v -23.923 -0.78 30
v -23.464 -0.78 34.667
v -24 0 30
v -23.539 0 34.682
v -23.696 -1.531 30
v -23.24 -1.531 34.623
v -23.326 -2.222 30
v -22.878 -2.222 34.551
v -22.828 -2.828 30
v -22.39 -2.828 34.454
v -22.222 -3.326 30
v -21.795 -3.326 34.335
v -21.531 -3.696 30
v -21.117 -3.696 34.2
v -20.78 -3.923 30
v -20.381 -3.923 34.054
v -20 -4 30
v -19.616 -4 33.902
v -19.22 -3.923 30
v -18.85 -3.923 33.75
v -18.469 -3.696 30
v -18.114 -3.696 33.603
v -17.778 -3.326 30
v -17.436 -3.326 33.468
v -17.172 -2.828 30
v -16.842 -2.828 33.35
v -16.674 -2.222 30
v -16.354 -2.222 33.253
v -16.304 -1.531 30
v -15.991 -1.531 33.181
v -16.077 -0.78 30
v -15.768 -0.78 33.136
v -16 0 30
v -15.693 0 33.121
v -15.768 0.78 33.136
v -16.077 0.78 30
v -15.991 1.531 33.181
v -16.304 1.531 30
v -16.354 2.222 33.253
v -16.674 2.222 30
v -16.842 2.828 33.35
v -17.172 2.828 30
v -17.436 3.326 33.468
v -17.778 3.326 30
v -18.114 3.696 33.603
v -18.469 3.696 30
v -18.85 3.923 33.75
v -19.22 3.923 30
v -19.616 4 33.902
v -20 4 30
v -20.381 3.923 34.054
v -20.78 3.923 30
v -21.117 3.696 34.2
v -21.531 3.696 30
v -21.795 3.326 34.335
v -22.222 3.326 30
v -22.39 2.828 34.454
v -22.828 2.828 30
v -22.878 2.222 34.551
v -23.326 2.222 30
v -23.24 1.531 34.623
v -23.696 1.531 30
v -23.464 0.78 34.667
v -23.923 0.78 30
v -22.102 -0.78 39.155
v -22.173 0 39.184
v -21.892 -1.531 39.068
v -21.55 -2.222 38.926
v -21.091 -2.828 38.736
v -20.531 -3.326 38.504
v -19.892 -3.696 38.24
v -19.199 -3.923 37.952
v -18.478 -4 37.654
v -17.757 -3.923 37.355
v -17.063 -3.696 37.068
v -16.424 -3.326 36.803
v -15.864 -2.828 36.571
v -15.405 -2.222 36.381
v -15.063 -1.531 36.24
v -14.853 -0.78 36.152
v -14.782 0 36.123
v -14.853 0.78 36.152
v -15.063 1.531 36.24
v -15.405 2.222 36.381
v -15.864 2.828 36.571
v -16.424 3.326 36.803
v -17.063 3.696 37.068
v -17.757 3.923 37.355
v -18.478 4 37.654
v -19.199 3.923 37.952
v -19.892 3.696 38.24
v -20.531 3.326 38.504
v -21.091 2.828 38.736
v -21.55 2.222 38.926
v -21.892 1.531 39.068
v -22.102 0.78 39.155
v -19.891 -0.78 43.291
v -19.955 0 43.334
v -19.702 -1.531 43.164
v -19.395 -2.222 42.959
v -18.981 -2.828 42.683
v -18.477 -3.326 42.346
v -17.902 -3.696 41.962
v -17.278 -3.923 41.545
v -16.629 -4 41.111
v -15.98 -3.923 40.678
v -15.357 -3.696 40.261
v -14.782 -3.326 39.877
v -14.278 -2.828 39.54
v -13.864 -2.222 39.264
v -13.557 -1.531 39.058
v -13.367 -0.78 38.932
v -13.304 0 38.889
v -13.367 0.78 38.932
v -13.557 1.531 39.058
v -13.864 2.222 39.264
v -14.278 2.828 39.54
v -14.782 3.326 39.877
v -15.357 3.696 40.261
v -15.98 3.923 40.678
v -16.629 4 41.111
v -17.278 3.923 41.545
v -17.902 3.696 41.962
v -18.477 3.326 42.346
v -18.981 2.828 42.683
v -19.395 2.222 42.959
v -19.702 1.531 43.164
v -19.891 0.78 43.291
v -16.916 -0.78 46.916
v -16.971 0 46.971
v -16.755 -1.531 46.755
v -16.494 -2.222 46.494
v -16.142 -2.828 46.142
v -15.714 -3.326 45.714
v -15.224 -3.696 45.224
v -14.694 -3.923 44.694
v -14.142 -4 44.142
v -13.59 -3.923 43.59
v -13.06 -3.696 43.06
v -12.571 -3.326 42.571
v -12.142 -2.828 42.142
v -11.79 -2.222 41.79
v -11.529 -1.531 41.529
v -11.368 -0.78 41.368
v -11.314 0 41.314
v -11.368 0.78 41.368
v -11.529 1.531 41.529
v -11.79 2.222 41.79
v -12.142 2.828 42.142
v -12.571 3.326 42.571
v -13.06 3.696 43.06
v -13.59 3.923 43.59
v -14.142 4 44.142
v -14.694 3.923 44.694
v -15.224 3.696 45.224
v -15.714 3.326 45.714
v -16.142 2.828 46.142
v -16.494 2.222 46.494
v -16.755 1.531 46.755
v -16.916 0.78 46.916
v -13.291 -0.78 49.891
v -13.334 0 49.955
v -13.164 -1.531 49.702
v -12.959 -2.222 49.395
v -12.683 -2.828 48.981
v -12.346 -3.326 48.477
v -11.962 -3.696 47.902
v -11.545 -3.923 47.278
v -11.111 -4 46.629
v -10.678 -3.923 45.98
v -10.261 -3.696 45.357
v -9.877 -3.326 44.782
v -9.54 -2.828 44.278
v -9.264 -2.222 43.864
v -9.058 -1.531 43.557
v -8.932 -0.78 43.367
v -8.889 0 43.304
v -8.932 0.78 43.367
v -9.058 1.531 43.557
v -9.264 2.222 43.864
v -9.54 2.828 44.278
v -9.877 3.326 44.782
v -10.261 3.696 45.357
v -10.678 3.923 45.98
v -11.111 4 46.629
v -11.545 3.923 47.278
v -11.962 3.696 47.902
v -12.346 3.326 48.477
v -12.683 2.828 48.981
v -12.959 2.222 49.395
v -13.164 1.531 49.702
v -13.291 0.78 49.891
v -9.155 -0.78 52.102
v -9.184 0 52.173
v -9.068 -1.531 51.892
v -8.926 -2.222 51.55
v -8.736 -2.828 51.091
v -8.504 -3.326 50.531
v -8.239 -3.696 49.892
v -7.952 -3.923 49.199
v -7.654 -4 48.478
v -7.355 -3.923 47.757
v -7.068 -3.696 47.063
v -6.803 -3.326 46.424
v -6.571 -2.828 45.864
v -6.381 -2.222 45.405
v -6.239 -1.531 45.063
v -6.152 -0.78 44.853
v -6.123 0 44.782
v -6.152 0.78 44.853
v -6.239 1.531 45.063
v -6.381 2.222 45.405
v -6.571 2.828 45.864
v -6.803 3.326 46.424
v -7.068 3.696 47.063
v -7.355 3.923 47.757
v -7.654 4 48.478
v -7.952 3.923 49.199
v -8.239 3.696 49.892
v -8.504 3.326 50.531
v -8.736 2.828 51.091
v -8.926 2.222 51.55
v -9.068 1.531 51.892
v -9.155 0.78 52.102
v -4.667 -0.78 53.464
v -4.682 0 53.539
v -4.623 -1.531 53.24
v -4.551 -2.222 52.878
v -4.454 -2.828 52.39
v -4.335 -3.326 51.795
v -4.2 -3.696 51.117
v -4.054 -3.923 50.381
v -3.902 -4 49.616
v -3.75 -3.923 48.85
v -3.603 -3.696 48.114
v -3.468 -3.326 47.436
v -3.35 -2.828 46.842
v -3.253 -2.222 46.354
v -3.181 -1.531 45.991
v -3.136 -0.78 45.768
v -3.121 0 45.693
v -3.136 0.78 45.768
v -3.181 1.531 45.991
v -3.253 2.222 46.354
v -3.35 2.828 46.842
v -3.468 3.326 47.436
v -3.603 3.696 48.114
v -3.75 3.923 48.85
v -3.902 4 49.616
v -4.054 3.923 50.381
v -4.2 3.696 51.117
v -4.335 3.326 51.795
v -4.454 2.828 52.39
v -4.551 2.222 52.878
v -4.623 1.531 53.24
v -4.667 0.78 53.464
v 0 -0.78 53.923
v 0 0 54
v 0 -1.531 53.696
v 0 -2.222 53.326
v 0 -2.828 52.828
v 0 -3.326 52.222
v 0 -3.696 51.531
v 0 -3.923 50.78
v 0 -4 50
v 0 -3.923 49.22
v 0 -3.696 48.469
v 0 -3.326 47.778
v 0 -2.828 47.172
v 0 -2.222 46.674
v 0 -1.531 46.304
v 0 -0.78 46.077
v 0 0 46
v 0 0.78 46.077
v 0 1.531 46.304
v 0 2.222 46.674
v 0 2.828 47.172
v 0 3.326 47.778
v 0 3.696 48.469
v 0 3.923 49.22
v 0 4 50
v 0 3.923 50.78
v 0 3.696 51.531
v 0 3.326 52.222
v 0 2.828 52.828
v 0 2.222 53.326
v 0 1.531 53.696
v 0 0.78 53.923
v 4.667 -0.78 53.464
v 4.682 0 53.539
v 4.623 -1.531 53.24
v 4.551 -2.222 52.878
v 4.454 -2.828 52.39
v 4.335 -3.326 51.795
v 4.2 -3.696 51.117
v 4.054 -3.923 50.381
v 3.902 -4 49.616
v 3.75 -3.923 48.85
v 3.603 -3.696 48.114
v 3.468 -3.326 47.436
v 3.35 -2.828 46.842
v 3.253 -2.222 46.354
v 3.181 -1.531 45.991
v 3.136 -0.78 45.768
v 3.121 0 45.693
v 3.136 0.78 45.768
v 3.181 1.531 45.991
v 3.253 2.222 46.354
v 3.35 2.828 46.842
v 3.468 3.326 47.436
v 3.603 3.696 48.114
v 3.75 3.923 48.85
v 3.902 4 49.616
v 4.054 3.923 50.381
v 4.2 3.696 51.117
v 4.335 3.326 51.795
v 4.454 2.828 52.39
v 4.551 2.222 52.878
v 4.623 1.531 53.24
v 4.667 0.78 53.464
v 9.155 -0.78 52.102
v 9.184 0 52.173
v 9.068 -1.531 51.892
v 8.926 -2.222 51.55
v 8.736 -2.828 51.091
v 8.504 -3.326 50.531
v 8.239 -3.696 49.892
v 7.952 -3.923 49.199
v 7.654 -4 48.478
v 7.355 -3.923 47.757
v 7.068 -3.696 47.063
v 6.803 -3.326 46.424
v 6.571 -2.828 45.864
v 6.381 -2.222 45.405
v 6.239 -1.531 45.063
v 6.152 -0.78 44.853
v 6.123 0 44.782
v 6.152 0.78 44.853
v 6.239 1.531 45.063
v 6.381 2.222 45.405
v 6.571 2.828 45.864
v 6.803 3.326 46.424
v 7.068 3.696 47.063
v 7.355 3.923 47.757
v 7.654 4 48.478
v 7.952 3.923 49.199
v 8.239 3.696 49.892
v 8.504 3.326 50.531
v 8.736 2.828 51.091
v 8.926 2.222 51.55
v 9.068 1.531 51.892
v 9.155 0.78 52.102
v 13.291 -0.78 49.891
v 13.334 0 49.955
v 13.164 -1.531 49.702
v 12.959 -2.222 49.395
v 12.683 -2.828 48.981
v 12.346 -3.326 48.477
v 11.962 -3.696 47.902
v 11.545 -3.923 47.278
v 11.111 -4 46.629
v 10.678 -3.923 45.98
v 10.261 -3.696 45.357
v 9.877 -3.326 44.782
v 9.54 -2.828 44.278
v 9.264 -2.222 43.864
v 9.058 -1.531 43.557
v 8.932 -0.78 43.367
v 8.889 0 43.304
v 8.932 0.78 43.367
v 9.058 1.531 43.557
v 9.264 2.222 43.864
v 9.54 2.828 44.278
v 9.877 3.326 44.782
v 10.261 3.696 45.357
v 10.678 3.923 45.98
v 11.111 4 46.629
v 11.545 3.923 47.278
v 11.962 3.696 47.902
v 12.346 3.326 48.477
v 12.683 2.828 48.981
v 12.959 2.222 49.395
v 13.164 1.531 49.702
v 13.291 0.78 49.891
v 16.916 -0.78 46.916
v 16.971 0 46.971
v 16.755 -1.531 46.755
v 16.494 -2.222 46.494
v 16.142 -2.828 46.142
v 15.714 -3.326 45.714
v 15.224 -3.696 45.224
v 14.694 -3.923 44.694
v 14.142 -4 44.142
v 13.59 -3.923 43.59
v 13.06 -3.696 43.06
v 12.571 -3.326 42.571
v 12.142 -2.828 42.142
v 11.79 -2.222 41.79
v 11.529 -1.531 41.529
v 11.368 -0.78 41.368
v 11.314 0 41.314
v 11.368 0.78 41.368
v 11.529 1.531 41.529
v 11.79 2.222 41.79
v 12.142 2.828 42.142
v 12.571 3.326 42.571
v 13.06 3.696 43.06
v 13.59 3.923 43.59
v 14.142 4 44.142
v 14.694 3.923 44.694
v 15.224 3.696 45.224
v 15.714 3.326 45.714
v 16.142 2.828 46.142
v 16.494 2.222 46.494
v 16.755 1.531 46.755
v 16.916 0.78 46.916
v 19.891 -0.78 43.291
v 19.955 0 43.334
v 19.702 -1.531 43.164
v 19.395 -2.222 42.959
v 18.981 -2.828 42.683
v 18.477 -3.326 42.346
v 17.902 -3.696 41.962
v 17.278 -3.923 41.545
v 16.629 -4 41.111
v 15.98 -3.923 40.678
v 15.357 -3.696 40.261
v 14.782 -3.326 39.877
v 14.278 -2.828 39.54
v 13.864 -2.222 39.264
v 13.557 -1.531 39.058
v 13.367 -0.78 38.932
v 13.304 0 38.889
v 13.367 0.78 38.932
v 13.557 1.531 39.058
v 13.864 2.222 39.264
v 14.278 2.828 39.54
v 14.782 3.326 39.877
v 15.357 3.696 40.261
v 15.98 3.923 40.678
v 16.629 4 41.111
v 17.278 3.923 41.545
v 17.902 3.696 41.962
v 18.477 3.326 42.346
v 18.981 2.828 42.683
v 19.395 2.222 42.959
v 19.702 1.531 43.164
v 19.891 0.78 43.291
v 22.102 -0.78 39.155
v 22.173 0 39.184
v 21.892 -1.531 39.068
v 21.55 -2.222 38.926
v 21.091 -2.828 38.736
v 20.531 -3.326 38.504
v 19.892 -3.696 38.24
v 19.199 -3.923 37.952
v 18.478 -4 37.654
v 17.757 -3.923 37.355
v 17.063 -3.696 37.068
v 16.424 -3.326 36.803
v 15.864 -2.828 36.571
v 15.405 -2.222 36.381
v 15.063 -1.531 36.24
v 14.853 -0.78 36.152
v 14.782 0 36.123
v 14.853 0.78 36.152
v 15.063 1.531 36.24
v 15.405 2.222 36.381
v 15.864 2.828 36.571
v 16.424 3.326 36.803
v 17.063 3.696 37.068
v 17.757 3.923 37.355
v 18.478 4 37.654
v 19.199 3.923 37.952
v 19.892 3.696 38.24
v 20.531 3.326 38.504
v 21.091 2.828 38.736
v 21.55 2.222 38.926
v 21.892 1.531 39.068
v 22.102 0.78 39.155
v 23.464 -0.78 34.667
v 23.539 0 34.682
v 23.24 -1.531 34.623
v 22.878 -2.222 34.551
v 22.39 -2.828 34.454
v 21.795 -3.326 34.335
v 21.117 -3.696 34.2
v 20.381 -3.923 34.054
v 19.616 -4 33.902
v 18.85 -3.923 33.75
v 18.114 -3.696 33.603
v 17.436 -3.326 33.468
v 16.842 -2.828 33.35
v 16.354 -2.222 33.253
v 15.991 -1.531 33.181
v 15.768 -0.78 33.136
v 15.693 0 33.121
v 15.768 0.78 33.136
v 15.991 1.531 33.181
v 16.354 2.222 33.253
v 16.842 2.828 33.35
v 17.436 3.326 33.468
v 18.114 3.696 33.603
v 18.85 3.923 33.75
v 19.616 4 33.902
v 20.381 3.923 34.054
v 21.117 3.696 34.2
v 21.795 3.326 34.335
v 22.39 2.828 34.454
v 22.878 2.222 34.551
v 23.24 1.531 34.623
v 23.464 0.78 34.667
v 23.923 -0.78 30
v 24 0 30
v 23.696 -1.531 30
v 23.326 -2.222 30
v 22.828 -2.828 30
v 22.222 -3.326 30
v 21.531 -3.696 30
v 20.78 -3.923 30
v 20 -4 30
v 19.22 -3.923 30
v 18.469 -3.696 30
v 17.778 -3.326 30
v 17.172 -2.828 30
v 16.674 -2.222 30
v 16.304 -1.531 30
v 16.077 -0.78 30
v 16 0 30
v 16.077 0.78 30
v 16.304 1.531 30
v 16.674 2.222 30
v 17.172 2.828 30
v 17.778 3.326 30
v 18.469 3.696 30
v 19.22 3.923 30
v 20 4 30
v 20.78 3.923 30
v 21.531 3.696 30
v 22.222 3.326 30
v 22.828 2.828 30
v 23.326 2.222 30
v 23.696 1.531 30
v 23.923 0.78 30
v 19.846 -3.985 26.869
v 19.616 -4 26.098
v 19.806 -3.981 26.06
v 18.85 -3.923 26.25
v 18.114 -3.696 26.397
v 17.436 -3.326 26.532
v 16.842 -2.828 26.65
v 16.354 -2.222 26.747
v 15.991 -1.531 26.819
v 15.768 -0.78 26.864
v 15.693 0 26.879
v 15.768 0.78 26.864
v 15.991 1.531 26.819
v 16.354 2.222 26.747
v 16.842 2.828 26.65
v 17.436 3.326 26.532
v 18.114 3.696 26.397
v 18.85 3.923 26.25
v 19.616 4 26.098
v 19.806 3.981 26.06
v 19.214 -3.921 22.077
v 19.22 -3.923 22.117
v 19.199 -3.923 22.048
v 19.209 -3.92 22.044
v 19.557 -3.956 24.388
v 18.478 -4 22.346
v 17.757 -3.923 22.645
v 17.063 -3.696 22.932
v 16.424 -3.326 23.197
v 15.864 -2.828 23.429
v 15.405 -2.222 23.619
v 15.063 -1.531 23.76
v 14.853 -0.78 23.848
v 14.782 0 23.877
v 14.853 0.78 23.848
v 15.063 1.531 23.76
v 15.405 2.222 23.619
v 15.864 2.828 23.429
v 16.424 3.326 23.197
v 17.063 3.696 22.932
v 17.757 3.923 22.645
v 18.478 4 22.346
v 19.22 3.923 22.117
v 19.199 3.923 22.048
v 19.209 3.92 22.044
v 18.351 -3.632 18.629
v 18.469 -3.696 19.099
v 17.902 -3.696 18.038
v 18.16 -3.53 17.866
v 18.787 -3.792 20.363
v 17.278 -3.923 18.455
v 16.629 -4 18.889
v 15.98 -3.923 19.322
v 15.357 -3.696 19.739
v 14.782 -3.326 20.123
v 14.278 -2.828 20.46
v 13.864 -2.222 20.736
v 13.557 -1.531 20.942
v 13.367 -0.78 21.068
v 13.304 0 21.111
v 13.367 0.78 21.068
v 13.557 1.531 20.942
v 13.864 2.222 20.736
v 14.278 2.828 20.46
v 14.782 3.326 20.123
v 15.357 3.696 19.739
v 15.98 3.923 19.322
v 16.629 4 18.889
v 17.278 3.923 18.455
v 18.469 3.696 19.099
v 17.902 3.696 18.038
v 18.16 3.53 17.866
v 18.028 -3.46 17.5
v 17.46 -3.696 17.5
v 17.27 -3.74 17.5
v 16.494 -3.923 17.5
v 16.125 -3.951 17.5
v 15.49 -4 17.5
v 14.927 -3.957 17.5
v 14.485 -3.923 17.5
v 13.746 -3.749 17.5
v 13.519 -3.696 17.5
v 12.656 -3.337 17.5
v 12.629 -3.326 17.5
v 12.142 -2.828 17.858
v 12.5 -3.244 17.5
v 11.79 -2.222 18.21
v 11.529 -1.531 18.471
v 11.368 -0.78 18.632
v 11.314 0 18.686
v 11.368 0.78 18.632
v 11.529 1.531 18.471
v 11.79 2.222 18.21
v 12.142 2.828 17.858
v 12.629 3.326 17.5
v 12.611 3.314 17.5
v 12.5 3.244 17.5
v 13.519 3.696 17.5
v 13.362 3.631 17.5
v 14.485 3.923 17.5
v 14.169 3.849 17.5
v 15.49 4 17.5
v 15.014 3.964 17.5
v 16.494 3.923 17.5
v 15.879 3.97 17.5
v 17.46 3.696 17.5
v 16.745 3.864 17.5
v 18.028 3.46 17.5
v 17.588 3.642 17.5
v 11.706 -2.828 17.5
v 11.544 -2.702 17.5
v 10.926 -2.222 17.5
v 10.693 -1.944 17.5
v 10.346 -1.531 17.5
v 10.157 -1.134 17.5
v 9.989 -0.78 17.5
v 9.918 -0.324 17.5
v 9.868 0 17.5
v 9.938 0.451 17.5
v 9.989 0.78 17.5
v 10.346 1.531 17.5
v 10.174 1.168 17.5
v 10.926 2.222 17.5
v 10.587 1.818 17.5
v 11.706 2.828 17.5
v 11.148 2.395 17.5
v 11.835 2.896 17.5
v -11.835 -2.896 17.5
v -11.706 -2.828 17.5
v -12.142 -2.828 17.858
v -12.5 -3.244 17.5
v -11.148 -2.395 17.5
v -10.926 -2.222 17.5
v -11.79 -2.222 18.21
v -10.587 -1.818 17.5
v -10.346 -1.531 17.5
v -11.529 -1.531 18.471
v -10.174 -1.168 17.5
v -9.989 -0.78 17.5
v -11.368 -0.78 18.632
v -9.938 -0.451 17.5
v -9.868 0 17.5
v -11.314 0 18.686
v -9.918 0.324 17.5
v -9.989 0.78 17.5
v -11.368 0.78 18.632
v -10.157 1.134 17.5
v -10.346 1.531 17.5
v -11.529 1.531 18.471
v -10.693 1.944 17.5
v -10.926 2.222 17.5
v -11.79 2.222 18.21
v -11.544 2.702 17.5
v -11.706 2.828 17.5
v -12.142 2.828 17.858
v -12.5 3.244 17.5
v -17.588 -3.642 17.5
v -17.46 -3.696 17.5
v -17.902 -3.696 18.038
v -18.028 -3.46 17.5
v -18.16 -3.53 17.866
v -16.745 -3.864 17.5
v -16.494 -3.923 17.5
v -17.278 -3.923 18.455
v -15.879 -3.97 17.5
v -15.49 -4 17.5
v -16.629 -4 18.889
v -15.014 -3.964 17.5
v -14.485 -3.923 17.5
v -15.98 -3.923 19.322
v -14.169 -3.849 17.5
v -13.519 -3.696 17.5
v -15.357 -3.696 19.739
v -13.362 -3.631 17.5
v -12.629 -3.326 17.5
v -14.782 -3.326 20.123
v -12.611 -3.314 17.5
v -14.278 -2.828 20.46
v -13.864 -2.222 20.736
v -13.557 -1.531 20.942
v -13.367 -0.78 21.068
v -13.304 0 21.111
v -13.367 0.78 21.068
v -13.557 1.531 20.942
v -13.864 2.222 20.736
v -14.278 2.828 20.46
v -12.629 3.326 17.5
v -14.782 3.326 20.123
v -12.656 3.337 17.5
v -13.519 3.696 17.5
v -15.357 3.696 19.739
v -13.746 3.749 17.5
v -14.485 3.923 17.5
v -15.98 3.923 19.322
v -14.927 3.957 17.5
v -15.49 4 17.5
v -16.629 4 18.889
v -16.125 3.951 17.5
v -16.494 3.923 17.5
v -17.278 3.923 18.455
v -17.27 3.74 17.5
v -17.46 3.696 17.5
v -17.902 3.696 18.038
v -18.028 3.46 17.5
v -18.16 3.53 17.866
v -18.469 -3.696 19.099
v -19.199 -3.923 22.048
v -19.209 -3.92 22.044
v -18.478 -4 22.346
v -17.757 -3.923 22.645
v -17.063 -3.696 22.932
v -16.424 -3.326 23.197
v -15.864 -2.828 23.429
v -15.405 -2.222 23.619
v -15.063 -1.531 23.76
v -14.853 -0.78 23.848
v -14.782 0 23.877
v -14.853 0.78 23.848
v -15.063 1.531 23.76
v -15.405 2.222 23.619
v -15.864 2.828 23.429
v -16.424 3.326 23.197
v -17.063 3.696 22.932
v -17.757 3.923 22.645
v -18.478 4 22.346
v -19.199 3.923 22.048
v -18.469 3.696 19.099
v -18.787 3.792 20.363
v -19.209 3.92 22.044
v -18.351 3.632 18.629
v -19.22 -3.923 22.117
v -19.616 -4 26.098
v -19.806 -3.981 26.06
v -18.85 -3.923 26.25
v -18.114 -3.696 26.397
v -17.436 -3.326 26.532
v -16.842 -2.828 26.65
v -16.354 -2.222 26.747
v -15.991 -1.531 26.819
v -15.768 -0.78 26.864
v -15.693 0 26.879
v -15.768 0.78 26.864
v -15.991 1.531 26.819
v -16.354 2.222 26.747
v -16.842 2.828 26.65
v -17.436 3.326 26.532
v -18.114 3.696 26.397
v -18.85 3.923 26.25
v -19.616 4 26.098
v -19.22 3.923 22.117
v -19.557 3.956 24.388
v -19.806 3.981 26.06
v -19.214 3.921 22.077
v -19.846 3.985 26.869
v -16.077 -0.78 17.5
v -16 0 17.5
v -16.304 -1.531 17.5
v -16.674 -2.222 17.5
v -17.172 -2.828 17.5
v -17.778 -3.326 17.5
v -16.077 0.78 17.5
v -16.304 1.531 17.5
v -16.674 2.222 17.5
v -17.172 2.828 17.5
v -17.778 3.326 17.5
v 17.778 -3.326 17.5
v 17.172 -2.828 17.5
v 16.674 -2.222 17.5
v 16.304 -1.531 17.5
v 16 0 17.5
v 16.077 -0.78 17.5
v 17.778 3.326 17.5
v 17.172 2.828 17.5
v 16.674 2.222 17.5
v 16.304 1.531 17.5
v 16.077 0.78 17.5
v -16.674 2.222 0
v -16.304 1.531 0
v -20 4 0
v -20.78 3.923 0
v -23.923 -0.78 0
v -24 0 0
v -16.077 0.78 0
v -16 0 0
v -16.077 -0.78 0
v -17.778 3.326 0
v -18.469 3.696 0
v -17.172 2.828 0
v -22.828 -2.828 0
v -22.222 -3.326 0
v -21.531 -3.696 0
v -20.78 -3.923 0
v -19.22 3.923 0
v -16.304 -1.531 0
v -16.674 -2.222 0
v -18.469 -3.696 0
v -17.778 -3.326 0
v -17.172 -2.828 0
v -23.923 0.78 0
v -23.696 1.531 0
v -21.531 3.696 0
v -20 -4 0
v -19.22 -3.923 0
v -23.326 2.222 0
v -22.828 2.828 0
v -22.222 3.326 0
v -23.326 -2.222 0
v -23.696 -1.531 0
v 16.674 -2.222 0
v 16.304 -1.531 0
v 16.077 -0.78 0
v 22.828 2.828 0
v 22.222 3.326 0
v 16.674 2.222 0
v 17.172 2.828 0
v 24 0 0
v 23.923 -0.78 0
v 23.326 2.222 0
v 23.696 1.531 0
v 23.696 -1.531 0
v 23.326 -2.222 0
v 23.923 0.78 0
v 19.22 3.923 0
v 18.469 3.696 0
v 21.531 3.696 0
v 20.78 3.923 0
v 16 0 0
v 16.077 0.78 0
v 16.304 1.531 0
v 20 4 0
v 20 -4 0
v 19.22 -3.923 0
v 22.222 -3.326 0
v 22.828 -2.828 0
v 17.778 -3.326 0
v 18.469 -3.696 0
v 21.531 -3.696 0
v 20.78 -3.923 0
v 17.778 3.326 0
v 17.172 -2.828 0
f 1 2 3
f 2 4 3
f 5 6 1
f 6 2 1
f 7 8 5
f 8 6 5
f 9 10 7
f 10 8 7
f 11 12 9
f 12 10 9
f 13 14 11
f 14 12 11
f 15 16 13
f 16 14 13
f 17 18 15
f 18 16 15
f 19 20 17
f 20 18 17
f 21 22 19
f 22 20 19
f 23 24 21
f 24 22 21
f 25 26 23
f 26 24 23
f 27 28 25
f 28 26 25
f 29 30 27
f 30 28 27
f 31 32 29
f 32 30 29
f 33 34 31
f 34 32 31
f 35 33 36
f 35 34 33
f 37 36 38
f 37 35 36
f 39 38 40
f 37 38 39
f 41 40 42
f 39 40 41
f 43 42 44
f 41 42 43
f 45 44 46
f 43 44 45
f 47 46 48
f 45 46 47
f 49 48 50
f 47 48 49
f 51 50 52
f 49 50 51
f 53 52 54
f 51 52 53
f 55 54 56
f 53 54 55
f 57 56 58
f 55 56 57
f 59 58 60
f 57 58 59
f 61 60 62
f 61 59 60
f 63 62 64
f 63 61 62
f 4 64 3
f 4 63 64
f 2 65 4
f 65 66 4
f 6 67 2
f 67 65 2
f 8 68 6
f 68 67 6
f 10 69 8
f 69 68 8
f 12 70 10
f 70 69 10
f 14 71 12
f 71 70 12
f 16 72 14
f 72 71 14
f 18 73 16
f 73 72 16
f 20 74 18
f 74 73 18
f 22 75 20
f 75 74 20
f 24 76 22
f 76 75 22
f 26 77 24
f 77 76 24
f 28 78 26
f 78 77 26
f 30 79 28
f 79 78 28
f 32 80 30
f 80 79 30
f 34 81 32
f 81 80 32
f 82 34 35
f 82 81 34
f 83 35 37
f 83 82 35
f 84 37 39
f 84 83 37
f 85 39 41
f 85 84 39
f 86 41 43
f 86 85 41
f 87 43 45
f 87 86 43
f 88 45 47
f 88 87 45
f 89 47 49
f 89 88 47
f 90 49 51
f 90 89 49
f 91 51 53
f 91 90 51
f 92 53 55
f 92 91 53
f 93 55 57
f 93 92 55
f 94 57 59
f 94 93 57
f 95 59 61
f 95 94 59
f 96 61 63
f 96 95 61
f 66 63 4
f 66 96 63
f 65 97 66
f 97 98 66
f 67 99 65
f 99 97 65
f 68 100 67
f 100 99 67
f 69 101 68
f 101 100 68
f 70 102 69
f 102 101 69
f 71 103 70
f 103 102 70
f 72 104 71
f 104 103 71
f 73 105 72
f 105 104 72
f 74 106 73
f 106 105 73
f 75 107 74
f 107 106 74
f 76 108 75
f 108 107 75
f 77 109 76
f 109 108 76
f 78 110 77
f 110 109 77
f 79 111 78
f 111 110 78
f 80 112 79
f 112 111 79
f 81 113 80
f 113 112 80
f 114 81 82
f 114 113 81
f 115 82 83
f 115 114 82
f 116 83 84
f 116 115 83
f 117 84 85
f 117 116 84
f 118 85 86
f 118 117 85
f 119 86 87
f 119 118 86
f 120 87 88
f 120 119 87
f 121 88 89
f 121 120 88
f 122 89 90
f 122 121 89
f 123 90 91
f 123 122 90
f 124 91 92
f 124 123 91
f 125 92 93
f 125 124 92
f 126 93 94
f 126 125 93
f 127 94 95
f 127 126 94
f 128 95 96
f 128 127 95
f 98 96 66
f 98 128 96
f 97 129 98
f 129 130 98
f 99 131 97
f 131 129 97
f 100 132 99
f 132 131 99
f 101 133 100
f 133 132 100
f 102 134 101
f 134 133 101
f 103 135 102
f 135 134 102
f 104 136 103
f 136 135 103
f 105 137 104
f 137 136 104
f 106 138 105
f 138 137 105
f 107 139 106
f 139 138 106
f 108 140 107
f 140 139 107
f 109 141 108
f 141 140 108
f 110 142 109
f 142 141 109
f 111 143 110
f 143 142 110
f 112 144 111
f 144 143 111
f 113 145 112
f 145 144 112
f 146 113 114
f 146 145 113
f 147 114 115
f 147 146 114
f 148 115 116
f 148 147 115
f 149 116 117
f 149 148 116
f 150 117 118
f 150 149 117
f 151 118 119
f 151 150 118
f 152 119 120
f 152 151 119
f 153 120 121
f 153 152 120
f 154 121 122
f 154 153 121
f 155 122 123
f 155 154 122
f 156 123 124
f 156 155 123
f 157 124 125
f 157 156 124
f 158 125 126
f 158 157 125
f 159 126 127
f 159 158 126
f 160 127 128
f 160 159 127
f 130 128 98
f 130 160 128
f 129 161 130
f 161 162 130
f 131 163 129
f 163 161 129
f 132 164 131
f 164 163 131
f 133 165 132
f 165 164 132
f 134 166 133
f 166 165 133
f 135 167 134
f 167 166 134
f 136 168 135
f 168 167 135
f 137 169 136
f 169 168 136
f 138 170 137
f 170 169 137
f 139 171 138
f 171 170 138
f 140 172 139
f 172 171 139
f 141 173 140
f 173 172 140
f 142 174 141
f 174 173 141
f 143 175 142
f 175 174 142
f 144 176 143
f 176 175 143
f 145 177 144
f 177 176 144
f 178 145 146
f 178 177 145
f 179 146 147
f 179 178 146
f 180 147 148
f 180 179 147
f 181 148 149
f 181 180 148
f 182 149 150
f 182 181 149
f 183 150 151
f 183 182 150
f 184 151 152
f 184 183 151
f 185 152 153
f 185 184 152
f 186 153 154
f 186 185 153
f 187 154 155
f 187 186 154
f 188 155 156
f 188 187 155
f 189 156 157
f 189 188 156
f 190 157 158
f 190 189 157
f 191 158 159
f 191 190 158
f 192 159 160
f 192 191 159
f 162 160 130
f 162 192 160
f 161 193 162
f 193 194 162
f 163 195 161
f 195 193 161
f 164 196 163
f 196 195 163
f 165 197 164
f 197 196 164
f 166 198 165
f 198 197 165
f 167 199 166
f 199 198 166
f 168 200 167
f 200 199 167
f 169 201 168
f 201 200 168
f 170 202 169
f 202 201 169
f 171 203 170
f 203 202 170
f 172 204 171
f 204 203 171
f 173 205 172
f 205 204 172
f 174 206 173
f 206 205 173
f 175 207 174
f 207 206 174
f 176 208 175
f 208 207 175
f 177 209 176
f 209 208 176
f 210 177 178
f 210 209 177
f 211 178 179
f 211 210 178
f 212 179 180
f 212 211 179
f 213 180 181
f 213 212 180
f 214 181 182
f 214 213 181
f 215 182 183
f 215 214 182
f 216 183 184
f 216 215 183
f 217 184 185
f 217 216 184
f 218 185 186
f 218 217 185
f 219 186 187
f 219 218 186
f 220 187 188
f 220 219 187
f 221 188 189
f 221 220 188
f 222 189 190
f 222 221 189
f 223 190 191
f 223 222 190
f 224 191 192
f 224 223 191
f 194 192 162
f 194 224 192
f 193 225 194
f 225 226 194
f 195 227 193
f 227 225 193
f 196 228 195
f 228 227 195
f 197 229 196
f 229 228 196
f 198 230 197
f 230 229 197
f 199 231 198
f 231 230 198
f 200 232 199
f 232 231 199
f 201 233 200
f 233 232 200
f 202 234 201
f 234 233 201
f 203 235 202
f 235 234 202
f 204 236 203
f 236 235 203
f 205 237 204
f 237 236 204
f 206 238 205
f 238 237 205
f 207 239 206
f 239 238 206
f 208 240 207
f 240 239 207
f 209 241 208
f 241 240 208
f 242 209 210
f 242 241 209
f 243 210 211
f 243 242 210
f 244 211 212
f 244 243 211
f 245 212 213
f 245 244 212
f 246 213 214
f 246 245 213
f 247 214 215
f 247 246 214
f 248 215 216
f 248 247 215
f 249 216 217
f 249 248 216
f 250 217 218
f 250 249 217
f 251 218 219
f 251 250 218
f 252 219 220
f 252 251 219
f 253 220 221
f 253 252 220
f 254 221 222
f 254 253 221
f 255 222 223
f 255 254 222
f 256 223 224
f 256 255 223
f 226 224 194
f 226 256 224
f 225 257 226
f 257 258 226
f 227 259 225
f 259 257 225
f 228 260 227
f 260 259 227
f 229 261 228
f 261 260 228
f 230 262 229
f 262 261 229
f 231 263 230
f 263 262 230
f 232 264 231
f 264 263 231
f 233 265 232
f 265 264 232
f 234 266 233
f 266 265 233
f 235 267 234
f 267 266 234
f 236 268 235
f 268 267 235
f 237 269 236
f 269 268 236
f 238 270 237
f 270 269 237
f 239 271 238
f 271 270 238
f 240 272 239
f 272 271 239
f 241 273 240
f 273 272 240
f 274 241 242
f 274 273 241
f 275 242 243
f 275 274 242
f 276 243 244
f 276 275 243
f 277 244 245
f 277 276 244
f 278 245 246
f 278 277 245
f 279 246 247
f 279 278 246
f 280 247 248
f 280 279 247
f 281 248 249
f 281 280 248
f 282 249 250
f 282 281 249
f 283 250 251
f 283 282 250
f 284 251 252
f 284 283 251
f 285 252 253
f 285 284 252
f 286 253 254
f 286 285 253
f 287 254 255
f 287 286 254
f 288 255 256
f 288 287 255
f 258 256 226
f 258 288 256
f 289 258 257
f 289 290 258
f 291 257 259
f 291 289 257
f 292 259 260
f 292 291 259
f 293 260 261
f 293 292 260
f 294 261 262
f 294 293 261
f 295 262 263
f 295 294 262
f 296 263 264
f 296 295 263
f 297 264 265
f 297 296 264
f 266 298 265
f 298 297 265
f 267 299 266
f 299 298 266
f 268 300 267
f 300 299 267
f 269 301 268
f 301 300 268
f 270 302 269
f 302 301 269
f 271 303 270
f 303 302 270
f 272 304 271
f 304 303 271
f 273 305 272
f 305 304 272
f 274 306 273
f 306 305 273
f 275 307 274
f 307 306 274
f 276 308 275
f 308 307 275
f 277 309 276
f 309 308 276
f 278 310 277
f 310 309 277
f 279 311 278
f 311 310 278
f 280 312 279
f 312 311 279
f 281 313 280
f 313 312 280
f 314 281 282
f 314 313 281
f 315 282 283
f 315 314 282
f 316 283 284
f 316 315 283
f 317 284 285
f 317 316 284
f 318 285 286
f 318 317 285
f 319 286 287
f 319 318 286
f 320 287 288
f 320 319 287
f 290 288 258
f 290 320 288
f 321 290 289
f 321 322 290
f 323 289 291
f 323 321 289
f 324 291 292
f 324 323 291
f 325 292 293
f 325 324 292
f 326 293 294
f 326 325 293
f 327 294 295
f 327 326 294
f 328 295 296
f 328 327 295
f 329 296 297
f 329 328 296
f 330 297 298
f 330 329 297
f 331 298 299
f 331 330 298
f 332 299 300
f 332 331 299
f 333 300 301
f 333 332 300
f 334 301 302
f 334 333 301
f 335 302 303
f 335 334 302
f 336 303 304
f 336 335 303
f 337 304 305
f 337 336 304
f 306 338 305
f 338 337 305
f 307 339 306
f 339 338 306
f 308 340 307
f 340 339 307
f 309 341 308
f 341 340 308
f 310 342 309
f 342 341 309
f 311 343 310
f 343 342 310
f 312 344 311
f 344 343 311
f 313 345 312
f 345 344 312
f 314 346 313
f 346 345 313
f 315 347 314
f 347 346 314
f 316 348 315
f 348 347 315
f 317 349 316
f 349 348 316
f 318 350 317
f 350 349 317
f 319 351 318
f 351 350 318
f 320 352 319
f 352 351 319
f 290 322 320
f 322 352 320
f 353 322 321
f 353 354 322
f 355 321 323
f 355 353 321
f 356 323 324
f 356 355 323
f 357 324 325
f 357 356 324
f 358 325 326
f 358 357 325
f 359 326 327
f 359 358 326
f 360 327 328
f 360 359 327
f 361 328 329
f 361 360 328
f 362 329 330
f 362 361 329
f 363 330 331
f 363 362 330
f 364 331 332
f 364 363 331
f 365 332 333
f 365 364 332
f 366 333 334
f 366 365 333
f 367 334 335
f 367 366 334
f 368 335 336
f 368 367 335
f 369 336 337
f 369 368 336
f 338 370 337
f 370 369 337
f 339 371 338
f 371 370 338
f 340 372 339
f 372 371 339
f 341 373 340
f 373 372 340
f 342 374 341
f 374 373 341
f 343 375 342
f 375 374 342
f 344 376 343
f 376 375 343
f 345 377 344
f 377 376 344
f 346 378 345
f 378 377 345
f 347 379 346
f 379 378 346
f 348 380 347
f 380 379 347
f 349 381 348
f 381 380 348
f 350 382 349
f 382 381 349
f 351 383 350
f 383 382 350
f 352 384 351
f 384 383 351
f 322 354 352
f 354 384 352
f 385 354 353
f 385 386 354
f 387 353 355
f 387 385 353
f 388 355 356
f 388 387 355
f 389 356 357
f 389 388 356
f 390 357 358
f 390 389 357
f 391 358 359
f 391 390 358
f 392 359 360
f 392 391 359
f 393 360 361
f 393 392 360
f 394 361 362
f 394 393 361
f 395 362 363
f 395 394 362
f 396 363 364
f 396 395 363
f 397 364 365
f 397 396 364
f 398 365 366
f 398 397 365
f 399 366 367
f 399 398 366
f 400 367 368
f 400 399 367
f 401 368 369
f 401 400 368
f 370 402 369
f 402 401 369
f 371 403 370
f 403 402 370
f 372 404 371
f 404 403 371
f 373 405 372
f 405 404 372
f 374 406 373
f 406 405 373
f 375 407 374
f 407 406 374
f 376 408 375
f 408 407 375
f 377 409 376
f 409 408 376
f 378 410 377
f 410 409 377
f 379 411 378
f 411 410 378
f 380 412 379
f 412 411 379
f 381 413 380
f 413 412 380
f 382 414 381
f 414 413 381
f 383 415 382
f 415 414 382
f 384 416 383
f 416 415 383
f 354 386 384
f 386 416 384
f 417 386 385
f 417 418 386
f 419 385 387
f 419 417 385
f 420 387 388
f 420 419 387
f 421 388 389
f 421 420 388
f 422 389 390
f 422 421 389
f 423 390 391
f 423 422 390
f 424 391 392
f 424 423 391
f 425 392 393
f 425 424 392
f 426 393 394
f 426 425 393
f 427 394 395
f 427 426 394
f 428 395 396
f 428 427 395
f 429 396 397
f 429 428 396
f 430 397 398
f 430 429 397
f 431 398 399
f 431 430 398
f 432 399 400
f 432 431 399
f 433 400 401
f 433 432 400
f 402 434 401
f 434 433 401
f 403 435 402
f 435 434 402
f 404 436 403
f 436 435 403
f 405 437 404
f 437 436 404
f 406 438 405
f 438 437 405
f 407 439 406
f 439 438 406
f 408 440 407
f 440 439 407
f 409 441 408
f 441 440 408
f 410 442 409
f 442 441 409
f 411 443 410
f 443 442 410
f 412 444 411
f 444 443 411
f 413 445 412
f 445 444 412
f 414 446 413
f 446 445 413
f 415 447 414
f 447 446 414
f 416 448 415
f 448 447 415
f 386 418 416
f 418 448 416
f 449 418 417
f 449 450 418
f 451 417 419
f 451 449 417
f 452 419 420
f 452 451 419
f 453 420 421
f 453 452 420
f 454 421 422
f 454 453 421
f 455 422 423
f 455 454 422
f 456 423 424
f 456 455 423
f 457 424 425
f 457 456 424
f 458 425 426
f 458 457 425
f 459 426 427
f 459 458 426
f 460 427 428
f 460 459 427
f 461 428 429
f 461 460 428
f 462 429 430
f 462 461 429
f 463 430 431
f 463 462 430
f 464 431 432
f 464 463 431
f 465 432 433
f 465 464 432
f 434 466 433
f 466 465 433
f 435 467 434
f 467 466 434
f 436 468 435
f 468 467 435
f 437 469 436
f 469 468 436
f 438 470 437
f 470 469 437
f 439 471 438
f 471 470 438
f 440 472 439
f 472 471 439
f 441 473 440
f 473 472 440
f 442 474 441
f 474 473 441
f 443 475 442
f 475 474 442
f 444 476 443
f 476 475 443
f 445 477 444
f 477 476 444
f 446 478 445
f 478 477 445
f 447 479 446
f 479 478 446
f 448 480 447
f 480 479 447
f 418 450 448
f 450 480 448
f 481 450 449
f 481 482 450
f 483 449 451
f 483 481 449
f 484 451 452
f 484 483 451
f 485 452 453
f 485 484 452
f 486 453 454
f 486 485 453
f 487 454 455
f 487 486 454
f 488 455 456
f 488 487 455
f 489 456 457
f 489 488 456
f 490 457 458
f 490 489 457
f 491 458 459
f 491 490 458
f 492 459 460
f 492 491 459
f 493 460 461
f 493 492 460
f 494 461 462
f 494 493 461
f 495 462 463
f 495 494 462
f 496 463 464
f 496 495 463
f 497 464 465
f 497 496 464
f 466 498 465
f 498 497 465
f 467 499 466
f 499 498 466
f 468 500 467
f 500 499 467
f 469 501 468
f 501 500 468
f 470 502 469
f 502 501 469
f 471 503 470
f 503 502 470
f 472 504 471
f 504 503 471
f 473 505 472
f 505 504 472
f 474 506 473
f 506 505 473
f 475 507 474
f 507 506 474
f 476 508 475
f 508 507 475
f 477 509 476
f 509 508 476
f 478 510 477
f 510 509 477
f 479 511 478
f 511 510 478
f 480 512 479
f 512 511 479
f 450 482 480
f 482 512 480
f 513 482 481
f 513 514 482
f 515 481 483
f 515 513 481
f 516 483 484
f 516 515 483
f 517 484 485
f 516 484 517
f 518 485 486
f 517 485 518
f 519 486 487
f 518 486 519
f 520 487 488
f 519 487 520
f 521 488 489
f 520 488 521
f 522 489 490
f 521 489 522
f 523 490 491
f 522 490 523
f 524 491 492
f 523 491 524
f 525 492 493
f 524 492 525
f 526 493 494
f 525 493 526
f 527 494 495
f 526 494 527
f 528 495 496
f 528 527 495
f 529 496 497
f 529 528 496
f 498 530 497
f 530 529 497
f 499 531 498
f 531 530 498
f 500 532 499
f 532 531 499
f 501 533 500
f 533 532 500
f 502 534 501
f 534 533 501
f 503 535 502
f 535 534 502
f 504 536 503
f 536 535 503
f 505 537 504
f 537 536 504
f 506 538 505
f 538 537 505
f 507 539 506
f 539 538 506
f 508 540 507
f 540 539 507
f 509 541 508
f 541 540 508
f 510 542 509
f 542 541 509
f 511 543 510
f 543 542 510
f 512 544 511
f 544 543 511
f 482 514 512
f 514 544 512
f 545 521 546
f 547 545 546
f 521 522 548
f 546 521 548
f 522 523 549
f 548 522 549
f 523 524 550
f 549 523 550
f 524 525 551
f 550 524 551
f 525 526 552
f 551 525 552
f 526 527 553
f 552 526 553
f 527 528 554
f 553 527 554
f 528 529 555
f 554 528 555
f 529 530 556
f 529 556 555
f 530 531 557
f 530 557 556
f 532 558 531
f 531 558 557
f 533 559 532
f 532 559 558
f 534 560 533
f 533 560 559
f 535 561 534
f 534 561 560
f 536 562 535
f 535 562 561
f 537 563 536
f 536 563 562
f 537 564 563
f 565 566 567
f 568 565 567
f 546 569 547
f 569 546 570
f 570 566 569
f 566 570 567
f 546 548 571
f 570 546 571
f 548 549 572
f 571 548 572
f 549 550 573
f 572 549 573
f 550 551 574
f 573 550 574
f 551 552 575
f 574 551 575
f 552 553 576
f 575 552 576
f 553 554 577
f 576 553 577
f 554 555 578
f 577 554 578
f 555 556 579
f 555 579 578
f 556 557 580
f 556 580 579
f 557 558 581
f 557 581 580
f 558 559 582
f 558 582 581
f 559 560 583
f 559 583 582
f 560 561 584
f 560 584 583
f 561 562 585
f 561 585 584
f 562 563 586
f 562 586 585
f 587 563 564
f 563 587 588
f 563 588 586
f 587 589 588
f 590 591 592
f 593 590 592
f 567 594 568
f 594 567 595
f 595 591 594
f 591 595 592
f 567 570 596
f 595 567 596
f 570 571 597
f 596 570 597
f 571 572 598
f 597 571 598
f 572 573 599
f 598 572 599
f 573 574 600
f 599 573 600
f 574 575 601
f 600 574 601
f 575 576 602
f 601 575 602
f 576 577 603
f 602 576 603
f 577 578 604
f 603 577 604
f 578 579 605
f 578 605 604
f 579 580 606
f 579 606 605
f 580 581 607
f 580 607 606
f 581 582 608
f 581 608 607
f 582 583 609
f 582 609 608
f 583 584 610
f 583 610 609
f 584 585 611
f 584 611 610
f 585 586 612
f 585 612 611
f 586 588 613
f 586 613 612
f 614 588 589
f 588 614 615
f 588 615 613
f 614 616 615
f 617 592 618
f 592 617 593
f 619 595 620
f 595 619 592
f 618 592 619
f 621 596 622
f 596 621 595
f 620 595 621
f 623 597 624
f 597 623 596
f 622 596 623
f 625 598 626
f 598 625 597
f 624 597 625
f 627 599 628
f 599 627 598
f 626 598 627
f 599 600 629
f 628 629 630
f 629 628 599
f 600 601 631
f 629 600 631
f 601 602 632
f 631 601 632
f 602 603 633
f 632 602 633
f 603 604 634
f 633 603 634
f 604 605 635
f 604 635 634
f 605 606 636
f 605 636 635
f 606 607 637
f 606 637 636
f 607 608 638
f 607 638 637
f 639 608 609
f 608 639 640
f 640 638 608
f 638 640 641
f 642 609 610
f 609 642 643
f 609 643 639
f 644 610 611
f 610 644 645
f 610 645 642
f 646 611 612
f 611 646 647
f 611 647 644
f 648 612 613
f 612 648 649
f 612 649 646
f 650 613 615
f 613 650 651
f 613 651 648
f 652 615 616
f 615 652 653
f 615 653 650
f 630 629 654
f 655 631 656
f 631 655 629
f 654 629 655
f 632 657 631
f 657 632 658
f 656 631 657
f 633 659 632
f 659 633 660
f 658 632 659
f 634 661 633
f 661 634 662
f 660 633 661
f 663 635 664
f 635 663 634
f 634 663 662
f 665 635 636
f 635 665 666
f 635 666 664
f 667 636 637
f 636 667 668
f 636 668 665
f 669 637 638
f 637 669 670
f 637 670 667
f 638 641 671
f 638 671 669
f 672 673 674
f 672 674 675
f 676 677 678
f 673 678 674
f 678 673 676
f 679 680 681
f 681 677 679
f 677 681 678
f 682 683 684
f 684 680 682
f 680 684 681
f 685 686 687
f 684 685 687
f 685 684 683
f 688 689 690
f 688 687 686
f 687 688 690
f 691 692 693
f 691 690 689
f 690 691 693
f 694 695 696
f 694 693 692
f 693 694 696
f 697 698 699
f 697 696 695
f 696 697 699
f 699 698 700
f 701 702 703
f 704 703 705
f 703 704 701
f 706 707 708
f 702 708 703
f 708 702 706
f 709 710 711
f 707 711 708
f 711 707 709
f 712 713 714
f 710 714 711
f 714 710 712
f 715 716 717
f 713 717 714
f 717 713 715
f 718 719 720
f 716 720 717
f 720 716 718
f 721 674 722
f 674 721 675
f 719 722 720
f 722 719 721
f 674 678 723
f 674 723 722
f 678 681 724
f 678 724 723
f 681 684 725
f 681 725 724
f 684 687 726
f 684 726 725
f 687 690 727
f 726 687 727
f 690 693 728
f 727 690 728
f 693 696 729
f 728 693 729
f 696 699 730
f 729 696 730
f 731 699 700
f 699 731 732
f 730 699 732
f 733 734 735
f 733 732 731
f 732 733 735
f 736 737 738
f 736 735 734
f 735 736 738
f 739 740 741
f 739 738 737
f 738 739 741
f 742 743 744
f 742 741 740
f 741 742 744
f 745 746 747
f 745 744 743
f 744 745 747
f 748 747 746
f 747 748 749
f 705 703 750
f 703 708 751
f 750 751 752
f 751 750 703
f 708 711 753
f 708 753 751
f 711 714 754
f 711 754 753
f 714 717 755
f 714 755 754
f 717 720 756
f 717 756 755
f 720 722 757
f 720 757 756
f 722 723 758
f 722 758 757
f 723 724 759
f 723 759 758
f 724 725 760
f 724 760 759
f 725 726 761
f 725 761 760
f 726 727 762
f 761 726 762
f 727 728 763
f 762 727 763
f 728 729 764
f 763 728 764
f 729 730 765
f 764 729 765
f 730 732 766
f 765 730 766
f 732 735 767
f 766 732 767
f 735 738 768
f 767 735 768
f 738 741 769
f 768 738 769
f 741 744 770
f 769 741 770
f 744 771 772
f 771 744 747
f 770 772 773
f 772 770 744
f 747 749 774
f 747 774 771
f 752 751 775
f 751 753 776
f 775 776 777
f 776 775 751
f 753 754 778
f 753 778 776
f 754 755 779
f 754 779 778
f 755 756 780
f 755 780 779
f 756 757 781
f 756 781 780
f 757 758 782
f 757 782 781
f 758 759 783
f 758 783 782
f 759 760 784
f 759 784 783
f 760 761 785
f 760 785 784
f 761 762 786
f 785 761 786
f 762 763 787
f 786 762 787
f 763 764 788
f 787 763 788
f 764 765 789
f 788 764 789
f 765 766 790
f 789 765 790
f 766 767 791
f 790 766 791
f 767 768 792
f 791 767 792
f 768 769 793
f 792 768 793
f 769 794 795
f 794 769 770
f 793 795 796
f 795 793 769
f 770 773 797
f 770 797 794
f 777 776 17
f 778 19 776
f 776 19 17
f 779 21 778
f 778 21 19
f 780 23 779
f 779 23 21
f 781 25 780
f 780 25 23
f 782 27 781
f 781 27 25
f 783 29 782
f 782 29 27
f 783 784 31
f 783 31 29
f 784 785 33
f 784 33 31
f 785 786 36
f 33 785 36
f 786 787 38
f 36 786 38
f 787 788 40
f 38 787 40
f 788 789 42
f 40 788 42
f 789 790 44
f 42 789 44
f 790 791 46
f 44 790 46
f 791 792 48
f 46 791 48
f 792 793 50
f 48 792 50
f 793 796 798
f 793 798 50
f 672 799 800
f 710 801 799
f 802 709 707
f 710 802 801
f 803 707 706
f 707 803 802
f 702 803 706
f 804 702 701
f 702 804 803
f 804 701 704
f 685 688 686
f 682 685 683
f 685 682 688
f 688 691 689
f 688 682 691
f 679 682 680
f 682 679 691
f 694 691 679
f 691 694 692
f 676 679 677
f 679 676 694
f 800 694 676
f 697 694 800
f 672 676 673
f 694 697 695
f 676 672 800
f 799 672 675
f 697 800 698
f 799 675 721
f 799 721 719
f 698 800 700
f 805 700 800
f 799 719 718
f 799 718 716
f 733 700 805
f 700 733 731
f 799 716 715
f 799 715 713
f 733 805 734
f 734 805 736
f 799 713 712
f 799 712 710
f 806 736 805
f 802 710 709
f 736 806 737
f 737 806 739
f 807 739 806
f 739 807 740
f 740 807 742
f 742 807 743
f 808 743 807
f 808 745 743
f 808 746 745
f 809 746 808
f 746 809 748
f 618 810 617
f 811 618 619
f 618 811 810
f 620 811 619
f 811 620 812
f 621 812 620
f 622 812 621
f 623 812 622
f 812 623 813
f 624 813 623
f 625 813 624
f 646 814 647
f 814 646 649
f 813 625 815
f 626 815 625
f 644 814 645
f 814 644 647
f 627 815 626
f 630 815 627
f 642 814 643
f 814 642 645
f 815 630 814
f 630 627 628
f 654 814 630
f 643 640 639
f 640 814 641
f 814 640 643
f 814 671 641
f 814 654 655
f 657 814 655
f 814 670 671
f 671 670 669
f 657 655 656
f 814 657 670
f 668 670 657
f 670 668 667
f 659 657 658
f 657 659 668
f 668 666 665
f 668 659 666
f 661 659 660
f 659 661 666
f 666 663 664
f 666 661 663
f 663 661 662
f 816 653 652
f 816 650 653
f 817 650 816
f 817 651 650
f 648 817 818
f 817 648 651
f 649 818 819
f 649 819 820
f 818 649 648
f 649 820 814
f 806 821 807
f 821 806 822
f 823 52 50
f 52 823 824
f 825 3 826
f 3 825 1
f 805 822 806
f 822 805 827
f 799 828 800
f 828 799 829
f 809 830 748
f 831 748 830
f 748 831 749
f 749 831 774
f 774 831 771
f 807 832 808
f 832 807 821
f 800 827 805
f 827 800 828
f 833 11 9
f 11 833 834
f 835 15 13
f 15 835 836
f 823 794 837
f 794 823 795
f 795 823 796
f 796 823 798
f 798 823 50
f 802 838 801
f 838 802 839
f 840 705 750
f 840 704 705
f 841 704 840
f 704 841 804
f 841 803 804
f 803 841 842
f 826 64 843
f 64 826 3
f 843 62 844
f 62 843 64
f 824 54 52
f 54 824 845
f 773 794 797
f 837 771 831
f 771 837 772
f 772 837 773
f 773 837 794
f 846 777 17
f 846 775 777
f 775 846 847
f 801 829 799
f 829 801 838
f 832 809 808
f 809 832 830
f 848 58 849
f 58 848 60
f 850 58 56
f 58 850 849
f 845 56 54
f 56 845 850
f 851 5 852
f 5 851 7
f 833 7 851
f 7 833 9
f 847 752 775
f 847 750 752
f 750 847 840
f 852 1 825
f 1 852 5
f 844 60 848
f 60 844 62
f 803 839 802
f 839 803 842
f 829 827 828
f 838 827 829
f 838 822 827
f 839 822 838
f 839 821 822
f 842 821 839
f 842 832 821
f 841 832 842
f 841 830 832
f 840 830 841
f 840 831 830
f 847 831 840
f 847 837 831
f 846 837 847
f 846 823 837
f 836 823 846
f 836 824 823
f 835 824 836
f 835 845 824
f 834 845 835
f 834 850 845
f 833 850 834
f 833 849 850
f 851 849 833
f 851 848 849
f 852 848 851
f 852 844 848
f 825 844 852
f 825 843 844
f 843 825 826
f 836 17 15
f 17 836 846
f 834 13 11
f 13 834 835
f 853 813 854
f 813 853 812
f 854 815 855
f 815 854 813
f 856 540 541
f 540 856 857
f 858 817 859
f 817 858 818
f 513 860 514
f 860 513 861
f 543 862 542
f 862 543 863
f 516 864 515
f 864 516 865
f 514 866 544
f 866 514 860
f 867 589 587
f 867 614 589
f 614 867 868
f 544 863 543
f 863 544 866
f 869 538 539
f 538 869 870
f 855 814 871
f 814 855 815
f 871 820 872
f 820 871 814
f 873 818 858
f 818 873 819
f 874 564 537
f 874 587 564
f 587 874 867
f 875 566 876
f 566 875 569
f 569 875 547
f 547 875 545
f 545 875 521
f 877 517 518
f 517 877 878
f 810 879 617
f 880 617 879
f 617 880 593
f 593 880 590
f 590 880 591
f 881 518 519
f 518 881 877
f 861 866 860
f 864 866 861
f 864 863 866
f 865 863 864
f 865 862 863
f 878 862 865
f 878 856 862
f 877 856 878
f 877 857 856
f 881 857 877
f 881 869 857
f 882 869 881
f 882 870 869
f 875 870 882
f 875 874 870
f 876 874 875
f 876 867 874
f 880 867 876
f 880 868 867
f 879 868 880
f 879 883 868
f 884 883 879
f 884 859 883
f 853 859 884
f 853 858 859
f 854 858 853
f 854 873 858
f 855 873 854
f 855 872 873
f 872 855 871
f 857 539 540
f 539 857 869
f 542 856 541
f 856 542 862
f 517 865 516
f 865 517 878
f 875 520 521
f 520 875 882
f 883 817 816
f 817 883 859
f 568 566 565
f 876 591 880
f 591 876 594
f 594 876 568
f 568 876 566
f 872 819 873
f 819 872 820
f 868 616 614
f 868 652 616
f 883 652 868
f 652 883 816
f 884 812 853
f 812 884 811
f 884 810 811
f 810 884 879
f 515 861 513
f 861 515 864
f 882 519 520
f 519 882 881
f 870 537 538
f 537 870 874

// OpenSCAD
/* doodle-meta {"version":1,"parameters":{"leg_length":{"label":"Leg Length","description":"Length of the straight vertical legs","unit":"mm","feature":"leg_length"},"bend_radius":{"label":"Bend Radius","description":"Centerline radius of the semi-circular bend","unit":"mm","feature":"bend_radius"},"handle_diameter":{"label":"Handle Diameter","description":"Diameter of the circular cross-section","unit":"mm","feature":"cross_section"}},"features":{"leg_length":{"kind":"dimension","axis":"z","label":"Leg Length"},"bend_radius":{"kind":"dimension","axis":"x","label":"Bend Radius"},"cross_section":{"kind":"dimension","axis":"y","label":"Handle Diameter"}}} */

// Parameters
leg_length = 30;
bend_radius = 20;
handle_diameter = 8;

// Derived constants
handle_radius = handle_diameter / 2;
total_height = leg_length + bend_radius + handle_radius;

// Module: The complete handle body
module handle_body() {
    // 1. Left Leg
    // Positioned at X = -bend_radius, extending from Z=0 to Z=leg_length
    // Centered in Y
    translate([-bend_radius, 0, leg_length / 2]) {
        cylinder(h=leg_length, r=handle_radius, center=true, $fn=32);
    }

    // 2. Right Leg
    // Positioned at X = +bend_radius, extending from Z=0 to Z=leg_length
    // Centered in Y
    translate([bend_radius, 0, leg_length / 2]) {
        cylinder(h=leg_length, r=handle_radius, center=true, $fn=32);
    }

    // 3. Semi-circular Bend
    // Centered at (0, 0, leg_length)
    // Torus major radius = bend_radius, minor radius = handle_radius
    // We use a torus and cut the bottom half to keep it clean and ensure it sits on Z=0
    translate([0, 0, leg_length]) {
        difference() {
            // Full torus
            rotate([90, 0, 0]) {
                torus(major_r=bend_radius, minor_r=handle_radius, fn=32);
            }
            // Cut away the bottom half (Z < 0 relative to torus center)
            // The torus center is at Z=leg_length. We want to keep Z >= leg_length.
            // So we remove everything below Z=leg_length.
            translate([0, 0, -bend_radius - handle_radius - 1]) {
                cube([bend_radius*2 + handle_radius*2 + 2, bend_radius*2 + handle_radius*2 + 2, bend_radius + handle_radius + 1], center=true);
            }
        }
    }
}

// Helper module for Torus (since standard torus isn't a primitive in all versions, 
// but rotate_extrude is standard. However, rotate_extrude of a circle is a torus.
// Let's implement torus via rotate_extrude to be safe and standard.)

module torus(major_r, minor_r, fn=32) {
    // Create a circle in the XZ plane (offset by major_r in X)
    // Then rotate around Z axis.
    // Wait, rotate_extrude rotates around Z.
    // So we need the profile in the XZ plane? No, rotate_extrude takes a 2D polygon in XY and rotates around Z.
    // So we define the circle in the XZ plane? No.
    // Standard torus: Circle in XZ plane at distance R from Z axis, rotated around Z.
    // But rotate_extrude works on 2D shapes in XY.
    // So we define the circle in the XZ plane? No, we define it in the XY plane?
    // If we define a circle in the XZ plane, we can't rotate_extrude it directly around Z unless we project it.
    // Actually, the standard way:
    // Define a circle in the XZ plane? No.
    // Let's use the standard torus construction:
    // A circle of radius r, centered at (R, 0, 0) in the XZ plane? No.
    // Let's stick to the simplest OpenSCAD torus implementation:
    // rotate_extrude() { translate([major_r, 0, 0]) circle(r=minor_r); }
    // This creates a torus lying in the XY plane (flat).
    // We need the torus to be vertical (standing up), so we rotate it 90 degrees around X or Y.
    
    // Correction: The previous code used `rotate([90,0,0])` before the torus call.
    // If `torus()` creates a flat torus (in XY), rotating 90 deg around X makes it stand up in XZ.
    // This matches the handle orientation (legs in XZ plane).
    
    // Let's redefine torus properly using rotate_extrude
    rotate_extrude($fn=fn) {
        translate([major_r, 0, 0]) {
            circle(r=minor_r, $fn=fn);
        }
    }
}

// Instantiate the design
// The handle is centered at X=0, Y=0.
// The lowest point is Z=0 (bottom of legs).
// The highest point is Z = leg_length + bend_radius + handle_radius.
// Total height = 30 + 20 + 4 = 54mm. Matches authoritative max dimension.
// Total width = 2*bend_radius + handle_diameter = 40 + 8 = 48mm.
// Total depth = handle_diameter = 8mm.

handle_body();
